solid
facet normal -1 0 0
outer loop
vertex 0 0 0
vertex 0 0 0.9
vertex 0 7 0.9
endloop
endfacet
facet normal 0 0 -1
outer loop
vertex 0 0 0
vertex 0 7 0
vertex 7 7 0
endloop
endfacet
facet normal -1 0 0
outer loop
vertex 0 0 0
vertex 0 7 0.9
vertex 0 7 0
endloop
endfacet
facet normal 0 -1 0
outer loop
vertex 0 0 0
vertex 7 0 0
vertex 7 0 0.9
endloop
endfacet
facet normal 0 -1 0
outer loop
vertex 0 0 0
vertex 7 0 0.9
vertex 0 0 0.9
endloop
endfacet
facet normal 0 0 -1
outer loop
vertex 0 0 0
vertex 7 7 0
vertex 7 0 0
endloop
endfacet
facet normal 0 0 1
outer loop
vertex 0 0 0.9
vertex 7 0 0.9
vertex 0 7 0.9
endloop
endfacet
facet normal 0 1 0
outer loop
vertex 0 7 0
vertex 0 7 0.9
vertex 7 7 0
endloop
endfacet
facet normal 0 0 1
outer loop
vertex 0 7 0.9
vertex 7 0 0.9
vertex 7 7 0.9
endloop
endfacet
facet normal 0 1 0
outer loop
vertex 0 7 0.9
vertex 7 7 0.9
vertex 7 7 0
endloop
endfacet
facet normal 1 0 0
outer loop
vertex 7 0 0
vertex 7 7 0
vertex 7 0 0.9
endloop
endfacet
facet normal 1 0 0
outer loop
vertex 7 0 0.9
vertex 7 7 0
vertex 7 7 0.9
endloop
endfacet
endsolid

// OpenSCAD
/* Warning, this is a very basic generator with a lot of approximation 
input data : [VQFN, KXX, 7x7x0.9mm, 43, , A, C04-00471A]
generated by com.zoubworld.electronics.cad.model3d.Basic
Date : Sun Feb 15 10:50:48 CET 2026
*/

//body
color("black")
translate([0,0,0])
cube([7.0,7.0,0.9], center=false);
